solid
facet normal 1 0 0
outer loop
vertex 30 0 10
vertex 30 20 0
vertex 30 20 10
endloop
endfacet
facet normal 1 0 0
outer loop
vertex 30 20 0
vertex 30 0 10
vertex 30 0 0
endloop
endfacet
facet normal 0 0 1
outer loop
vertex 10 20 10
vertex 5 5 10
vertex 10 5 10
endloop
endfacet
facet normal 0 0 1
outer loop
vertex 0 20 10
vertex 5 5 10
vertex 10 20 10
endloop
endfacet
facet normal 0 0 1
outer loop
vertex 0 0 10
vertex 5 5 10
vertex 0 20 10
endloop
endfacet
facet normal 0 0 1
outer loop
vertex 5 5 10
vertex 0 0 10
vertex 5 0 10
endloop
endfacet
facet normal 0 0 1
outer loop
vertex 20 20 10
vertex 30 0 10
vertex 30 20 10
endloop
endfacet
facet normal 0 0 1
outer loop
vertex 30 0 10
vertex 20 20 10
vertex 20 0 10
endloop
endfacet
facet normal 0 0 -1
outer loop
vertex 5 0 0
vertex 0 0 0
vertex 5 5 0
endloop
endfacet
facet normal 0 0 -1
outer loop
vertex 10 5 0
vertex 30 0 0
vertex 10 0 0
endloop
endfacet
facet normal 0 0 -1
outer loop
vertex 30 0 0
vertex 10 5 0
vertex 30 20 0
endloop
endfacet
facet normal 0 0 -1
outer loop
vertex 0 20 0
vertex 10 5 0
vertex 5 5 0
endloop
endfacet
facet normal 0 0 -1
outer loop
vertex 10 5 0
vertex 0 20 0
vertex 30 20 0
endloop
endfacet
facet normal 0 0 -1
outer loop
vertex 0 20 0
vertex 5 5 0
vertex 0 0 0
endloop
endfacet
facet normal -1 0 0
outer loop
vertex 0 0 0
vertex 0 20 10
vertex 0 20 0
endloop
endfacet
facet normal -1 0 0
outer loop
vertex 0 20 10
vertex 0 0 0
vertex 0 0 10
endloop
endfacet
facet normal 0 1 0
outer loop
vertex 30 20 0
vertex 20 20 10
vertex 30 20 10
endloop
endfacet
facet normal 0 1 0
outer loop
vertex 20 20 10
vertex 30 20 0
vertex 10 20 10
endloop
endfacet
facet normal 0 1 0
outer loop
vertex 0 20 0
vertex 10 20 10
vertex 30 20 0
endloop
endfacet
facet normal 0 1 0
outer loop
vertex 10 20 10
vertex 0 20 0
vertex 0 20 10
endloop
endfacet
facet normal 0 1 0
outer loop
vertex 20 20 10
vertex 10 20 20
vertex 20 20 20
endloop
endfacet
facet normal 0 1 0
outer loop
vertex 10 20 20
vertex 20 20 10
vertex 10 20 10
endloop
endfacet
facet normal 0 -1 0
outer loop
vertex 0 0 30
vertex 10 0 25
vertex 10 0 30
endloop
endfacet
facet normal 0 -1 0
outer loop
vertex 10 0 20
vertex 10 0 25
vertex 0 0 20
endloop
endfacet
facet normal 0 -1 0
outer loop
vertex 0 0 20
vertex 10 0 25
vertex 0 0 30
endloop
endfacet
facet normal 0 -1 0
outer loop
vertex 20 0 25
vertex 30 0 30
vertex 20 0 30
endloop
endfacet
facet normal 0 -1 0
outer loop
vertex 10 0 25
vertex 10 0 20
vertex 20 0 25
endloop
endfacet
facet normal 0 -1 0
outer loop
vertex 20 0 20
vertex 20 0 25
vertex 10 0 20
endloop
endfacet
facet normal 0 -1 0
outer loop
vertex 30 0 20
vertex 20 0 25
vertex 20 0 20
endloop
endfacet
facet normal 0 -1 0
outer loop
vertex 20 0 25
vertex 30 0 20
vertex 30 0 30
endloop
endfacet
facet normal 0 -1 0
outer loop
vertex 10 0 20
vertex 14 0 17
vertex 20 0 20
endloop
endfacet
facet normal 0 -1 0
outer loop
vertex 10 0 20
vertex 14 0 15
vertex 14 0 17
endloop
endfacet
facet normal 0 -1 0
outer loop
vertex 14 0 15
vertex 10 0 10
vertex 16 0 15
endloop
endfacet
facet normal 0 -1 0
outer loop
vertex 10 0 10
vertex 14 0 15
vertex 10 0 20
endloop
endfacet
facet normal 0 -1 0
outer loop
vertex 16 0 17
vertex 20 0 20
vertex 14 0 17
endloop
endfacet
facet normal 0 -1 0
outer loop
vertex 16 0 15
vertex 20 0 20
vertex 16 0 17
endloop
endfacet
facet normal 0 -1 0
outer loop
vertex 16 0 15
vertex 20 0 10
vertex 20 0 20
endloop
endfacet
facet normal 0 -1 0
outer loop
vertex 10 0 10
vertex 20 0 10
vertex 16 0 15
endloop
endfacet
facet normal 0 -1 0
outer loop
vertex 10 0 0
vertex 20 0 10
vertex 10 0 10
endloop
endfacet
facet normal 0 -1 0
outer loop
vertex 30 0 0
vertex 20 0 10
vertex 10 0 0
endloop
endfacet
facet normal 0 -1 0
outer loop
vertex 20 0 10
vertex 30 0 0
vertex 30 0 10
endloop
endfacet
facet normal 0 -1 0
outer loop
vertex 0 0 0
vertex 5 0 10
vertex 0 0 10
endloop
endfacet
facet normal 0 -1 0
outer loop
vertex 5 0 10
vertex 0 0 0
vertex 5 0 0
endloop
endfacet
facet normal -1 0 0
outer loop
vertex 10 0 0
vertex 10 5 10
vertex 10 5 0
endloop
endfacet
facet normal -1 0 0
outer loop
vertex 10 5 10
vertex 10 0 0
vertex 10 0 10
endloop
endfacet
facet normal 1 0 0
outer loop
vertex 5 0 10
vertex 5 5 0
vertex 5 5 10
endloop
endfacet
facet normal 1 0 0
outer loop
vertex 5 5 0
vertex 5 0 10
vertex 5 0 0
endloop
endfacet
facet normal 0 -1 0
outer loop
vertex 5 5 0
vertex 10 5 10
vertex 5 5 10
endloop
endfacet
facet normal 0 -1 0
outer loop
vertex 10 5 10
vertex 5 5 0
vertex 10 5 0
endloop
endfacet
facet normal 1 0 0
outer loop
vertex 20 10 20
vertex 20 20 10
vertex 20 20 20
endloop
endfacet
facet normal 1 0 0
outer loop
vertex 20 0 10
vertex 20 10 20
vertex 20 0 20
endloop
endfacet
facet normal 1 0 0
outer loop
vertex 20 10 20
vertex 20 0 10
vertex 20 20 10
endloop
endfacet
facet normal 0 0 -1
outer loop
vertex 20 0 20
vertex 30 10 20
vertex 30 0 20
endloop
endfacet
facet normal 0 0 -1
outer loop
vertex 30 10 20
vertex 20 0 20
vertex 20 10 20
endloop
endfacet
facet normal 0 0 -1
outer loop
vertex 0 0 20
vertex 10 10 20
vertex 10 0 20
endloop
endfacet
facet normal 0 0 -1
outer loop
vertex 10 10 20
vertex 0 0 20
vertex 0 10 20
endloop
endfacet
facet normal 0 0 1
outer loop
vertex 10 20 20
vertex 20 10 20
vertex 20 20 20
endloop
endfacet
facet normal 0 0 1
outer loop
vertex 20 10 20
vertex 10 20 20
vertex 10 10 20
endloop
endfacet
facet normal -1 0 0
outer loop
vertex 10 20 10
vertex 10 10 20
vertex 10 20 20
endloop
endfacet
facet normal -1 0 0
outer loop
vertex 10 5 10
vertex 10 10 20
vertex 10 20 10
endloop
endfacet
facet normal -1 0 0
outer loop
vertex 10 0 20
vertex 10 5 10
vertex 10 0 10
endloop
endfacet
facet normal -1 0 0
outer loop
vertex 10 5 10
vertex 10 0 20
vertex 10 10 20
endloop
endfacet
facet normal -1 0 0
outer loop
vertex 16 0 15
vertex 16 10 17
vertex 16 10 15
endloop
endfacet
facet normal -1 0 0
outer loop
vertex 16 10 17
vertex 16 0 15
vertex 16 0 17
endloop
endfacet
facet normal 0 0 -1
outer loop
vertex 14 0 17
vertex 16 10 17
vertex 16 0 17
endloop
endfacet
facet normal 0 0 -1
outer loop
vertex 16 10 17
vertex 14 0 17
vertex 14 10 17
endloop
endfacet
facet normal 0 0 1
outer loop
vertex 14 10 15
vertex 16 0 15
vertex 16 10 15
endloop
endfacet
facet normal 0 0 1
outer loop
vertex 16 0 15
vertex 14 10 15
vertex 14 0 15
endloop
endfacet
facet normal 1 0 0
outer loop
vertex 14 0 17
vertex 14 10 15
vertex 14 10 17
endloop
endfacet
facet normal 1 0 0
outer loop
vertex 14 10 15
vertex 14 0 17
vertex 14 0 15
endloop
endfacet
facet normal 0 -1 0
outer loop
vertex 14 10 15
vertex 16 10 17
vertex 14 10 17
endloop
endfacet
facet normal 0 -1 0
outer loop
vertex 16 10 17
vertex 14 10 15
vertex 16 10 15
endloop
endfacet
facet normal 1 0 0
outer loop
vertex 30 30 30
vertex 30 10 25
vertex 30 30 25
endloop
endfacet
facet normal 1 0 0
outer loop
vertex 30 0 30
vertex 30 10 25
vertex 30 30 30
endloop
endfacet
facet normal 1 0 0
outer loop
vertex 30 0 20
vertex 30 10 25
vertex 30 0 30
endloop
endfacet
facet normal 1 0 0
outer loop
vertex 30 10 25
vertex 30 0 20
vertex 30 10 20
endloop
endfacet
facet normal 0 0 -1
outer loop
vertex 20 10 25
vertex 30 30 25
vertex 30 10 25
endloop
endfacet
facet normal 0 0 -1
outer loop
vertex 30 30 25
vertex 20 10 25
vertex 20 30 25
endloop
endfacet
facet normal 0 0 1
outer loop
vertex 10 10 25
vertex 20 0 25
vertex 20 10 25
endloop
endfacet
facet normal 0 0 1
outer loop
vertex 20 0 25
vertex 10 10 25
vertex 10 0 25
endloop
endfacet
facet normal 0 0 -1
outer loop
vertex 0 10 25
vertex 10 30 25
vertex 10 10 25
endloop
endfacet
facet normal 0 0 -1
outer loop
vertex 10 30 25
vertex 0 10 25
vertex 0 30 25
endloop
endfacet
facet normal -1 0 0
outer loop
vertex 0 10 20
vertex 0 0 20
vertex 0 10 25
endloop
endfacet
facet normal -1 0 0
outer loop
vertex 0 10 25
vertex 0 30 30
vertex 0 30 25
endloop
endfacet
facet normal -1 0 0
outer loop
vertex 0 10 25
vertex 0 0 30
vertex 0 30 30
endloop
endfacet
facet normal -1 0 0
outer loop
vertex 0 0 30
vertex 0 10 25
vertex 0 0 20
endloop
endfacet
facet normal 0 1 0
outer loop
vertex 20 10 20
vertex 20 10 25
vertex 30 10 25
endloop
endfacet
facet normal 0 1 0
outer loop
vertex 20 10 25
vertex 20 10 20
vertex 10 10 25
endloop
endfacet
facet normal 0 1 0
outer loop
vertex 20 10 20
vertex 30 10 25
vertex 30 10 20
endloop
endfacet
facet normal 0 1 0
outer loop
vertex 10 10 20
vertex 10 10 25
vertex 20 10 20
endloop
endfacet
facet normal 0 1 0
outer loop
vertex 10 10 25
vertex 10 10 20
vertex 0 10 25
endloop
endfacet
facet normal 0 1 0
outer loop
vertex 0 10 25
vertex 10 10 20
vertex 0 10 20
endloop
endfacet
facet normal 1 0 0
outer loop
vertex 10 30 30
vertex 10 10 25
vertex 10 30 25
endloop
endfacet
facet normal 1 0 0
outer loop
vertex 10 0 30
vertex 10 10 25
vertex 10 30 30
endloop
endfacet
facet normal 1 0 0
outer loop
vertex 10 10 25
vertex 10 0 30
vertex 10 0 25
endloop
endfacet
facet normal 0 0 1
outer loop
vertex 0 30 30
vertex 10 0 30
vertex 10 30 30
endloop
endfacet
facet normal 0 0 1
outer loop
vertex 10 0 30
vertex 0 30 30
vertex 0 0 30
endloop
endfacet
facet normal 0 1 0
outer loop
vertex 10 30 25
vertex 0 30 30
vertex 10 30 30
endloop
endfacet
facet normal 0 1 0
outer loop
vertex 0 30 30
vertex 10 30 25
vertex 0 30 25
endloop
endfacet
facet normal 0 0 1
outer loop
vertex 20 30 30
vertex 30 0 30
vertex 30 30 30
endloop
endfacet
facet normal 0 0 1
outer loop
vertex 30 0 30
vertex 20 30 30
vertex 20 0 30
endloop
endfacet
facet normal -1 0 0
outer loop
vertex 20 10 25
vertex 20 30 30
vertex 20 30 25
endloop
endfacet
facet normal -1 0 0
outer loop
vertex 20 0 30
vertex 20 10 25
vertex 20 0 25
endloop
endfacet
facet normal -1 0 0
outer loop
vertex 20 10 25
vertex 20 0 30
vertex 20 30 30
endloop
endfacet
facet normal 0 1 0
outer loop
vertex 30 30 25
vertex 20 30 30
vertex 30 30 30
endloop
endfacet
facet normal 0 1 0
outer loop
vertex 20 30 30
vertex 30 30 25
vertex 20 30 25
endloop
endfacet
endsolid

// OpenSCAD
// Base block
module base_block() {
    difference() {
        cube([30, 20, 10], center = false); // Main block
        translate([5, 0, 0])
            cube([5, 5, 10], center = false); // Adjusted vertical slot to match original model
    }
}

// Forked arm
module forked_arm() {
    union() {
        // Base of the U-shape
        cube([30, 10, 5], center = false); // Reduced thickness of the base to match original model
        // Left prong
        translate([0, 0, 5])
            cube([10, 30, 5], center = false); // Extended prong length to match original model
        // Right prong
        translate([20, 0, 5])
            cube([10, 30, 5], center = false); // Extended prong length to match original model
    }
}

// Connector slot
module connector_slot() {
    difference() {
        cube([10, 20, 10], center = false); // Main block
        translate([4, 0, 5])
            cube([2, 10, 2], center = false); // Adjusted slot dimensions and position to match original model
    }
}

// Assembly
module assembly() {
    // Layer 3: Base block
    base_block();

    // Layer 2: Connector slot
    translate([10, 0, 10])
        connector_slot();

    // Layer 1: Forked arm
    translate([0, 0, 20])
        forked_arm();
}

// Render the assembly
assembly();
